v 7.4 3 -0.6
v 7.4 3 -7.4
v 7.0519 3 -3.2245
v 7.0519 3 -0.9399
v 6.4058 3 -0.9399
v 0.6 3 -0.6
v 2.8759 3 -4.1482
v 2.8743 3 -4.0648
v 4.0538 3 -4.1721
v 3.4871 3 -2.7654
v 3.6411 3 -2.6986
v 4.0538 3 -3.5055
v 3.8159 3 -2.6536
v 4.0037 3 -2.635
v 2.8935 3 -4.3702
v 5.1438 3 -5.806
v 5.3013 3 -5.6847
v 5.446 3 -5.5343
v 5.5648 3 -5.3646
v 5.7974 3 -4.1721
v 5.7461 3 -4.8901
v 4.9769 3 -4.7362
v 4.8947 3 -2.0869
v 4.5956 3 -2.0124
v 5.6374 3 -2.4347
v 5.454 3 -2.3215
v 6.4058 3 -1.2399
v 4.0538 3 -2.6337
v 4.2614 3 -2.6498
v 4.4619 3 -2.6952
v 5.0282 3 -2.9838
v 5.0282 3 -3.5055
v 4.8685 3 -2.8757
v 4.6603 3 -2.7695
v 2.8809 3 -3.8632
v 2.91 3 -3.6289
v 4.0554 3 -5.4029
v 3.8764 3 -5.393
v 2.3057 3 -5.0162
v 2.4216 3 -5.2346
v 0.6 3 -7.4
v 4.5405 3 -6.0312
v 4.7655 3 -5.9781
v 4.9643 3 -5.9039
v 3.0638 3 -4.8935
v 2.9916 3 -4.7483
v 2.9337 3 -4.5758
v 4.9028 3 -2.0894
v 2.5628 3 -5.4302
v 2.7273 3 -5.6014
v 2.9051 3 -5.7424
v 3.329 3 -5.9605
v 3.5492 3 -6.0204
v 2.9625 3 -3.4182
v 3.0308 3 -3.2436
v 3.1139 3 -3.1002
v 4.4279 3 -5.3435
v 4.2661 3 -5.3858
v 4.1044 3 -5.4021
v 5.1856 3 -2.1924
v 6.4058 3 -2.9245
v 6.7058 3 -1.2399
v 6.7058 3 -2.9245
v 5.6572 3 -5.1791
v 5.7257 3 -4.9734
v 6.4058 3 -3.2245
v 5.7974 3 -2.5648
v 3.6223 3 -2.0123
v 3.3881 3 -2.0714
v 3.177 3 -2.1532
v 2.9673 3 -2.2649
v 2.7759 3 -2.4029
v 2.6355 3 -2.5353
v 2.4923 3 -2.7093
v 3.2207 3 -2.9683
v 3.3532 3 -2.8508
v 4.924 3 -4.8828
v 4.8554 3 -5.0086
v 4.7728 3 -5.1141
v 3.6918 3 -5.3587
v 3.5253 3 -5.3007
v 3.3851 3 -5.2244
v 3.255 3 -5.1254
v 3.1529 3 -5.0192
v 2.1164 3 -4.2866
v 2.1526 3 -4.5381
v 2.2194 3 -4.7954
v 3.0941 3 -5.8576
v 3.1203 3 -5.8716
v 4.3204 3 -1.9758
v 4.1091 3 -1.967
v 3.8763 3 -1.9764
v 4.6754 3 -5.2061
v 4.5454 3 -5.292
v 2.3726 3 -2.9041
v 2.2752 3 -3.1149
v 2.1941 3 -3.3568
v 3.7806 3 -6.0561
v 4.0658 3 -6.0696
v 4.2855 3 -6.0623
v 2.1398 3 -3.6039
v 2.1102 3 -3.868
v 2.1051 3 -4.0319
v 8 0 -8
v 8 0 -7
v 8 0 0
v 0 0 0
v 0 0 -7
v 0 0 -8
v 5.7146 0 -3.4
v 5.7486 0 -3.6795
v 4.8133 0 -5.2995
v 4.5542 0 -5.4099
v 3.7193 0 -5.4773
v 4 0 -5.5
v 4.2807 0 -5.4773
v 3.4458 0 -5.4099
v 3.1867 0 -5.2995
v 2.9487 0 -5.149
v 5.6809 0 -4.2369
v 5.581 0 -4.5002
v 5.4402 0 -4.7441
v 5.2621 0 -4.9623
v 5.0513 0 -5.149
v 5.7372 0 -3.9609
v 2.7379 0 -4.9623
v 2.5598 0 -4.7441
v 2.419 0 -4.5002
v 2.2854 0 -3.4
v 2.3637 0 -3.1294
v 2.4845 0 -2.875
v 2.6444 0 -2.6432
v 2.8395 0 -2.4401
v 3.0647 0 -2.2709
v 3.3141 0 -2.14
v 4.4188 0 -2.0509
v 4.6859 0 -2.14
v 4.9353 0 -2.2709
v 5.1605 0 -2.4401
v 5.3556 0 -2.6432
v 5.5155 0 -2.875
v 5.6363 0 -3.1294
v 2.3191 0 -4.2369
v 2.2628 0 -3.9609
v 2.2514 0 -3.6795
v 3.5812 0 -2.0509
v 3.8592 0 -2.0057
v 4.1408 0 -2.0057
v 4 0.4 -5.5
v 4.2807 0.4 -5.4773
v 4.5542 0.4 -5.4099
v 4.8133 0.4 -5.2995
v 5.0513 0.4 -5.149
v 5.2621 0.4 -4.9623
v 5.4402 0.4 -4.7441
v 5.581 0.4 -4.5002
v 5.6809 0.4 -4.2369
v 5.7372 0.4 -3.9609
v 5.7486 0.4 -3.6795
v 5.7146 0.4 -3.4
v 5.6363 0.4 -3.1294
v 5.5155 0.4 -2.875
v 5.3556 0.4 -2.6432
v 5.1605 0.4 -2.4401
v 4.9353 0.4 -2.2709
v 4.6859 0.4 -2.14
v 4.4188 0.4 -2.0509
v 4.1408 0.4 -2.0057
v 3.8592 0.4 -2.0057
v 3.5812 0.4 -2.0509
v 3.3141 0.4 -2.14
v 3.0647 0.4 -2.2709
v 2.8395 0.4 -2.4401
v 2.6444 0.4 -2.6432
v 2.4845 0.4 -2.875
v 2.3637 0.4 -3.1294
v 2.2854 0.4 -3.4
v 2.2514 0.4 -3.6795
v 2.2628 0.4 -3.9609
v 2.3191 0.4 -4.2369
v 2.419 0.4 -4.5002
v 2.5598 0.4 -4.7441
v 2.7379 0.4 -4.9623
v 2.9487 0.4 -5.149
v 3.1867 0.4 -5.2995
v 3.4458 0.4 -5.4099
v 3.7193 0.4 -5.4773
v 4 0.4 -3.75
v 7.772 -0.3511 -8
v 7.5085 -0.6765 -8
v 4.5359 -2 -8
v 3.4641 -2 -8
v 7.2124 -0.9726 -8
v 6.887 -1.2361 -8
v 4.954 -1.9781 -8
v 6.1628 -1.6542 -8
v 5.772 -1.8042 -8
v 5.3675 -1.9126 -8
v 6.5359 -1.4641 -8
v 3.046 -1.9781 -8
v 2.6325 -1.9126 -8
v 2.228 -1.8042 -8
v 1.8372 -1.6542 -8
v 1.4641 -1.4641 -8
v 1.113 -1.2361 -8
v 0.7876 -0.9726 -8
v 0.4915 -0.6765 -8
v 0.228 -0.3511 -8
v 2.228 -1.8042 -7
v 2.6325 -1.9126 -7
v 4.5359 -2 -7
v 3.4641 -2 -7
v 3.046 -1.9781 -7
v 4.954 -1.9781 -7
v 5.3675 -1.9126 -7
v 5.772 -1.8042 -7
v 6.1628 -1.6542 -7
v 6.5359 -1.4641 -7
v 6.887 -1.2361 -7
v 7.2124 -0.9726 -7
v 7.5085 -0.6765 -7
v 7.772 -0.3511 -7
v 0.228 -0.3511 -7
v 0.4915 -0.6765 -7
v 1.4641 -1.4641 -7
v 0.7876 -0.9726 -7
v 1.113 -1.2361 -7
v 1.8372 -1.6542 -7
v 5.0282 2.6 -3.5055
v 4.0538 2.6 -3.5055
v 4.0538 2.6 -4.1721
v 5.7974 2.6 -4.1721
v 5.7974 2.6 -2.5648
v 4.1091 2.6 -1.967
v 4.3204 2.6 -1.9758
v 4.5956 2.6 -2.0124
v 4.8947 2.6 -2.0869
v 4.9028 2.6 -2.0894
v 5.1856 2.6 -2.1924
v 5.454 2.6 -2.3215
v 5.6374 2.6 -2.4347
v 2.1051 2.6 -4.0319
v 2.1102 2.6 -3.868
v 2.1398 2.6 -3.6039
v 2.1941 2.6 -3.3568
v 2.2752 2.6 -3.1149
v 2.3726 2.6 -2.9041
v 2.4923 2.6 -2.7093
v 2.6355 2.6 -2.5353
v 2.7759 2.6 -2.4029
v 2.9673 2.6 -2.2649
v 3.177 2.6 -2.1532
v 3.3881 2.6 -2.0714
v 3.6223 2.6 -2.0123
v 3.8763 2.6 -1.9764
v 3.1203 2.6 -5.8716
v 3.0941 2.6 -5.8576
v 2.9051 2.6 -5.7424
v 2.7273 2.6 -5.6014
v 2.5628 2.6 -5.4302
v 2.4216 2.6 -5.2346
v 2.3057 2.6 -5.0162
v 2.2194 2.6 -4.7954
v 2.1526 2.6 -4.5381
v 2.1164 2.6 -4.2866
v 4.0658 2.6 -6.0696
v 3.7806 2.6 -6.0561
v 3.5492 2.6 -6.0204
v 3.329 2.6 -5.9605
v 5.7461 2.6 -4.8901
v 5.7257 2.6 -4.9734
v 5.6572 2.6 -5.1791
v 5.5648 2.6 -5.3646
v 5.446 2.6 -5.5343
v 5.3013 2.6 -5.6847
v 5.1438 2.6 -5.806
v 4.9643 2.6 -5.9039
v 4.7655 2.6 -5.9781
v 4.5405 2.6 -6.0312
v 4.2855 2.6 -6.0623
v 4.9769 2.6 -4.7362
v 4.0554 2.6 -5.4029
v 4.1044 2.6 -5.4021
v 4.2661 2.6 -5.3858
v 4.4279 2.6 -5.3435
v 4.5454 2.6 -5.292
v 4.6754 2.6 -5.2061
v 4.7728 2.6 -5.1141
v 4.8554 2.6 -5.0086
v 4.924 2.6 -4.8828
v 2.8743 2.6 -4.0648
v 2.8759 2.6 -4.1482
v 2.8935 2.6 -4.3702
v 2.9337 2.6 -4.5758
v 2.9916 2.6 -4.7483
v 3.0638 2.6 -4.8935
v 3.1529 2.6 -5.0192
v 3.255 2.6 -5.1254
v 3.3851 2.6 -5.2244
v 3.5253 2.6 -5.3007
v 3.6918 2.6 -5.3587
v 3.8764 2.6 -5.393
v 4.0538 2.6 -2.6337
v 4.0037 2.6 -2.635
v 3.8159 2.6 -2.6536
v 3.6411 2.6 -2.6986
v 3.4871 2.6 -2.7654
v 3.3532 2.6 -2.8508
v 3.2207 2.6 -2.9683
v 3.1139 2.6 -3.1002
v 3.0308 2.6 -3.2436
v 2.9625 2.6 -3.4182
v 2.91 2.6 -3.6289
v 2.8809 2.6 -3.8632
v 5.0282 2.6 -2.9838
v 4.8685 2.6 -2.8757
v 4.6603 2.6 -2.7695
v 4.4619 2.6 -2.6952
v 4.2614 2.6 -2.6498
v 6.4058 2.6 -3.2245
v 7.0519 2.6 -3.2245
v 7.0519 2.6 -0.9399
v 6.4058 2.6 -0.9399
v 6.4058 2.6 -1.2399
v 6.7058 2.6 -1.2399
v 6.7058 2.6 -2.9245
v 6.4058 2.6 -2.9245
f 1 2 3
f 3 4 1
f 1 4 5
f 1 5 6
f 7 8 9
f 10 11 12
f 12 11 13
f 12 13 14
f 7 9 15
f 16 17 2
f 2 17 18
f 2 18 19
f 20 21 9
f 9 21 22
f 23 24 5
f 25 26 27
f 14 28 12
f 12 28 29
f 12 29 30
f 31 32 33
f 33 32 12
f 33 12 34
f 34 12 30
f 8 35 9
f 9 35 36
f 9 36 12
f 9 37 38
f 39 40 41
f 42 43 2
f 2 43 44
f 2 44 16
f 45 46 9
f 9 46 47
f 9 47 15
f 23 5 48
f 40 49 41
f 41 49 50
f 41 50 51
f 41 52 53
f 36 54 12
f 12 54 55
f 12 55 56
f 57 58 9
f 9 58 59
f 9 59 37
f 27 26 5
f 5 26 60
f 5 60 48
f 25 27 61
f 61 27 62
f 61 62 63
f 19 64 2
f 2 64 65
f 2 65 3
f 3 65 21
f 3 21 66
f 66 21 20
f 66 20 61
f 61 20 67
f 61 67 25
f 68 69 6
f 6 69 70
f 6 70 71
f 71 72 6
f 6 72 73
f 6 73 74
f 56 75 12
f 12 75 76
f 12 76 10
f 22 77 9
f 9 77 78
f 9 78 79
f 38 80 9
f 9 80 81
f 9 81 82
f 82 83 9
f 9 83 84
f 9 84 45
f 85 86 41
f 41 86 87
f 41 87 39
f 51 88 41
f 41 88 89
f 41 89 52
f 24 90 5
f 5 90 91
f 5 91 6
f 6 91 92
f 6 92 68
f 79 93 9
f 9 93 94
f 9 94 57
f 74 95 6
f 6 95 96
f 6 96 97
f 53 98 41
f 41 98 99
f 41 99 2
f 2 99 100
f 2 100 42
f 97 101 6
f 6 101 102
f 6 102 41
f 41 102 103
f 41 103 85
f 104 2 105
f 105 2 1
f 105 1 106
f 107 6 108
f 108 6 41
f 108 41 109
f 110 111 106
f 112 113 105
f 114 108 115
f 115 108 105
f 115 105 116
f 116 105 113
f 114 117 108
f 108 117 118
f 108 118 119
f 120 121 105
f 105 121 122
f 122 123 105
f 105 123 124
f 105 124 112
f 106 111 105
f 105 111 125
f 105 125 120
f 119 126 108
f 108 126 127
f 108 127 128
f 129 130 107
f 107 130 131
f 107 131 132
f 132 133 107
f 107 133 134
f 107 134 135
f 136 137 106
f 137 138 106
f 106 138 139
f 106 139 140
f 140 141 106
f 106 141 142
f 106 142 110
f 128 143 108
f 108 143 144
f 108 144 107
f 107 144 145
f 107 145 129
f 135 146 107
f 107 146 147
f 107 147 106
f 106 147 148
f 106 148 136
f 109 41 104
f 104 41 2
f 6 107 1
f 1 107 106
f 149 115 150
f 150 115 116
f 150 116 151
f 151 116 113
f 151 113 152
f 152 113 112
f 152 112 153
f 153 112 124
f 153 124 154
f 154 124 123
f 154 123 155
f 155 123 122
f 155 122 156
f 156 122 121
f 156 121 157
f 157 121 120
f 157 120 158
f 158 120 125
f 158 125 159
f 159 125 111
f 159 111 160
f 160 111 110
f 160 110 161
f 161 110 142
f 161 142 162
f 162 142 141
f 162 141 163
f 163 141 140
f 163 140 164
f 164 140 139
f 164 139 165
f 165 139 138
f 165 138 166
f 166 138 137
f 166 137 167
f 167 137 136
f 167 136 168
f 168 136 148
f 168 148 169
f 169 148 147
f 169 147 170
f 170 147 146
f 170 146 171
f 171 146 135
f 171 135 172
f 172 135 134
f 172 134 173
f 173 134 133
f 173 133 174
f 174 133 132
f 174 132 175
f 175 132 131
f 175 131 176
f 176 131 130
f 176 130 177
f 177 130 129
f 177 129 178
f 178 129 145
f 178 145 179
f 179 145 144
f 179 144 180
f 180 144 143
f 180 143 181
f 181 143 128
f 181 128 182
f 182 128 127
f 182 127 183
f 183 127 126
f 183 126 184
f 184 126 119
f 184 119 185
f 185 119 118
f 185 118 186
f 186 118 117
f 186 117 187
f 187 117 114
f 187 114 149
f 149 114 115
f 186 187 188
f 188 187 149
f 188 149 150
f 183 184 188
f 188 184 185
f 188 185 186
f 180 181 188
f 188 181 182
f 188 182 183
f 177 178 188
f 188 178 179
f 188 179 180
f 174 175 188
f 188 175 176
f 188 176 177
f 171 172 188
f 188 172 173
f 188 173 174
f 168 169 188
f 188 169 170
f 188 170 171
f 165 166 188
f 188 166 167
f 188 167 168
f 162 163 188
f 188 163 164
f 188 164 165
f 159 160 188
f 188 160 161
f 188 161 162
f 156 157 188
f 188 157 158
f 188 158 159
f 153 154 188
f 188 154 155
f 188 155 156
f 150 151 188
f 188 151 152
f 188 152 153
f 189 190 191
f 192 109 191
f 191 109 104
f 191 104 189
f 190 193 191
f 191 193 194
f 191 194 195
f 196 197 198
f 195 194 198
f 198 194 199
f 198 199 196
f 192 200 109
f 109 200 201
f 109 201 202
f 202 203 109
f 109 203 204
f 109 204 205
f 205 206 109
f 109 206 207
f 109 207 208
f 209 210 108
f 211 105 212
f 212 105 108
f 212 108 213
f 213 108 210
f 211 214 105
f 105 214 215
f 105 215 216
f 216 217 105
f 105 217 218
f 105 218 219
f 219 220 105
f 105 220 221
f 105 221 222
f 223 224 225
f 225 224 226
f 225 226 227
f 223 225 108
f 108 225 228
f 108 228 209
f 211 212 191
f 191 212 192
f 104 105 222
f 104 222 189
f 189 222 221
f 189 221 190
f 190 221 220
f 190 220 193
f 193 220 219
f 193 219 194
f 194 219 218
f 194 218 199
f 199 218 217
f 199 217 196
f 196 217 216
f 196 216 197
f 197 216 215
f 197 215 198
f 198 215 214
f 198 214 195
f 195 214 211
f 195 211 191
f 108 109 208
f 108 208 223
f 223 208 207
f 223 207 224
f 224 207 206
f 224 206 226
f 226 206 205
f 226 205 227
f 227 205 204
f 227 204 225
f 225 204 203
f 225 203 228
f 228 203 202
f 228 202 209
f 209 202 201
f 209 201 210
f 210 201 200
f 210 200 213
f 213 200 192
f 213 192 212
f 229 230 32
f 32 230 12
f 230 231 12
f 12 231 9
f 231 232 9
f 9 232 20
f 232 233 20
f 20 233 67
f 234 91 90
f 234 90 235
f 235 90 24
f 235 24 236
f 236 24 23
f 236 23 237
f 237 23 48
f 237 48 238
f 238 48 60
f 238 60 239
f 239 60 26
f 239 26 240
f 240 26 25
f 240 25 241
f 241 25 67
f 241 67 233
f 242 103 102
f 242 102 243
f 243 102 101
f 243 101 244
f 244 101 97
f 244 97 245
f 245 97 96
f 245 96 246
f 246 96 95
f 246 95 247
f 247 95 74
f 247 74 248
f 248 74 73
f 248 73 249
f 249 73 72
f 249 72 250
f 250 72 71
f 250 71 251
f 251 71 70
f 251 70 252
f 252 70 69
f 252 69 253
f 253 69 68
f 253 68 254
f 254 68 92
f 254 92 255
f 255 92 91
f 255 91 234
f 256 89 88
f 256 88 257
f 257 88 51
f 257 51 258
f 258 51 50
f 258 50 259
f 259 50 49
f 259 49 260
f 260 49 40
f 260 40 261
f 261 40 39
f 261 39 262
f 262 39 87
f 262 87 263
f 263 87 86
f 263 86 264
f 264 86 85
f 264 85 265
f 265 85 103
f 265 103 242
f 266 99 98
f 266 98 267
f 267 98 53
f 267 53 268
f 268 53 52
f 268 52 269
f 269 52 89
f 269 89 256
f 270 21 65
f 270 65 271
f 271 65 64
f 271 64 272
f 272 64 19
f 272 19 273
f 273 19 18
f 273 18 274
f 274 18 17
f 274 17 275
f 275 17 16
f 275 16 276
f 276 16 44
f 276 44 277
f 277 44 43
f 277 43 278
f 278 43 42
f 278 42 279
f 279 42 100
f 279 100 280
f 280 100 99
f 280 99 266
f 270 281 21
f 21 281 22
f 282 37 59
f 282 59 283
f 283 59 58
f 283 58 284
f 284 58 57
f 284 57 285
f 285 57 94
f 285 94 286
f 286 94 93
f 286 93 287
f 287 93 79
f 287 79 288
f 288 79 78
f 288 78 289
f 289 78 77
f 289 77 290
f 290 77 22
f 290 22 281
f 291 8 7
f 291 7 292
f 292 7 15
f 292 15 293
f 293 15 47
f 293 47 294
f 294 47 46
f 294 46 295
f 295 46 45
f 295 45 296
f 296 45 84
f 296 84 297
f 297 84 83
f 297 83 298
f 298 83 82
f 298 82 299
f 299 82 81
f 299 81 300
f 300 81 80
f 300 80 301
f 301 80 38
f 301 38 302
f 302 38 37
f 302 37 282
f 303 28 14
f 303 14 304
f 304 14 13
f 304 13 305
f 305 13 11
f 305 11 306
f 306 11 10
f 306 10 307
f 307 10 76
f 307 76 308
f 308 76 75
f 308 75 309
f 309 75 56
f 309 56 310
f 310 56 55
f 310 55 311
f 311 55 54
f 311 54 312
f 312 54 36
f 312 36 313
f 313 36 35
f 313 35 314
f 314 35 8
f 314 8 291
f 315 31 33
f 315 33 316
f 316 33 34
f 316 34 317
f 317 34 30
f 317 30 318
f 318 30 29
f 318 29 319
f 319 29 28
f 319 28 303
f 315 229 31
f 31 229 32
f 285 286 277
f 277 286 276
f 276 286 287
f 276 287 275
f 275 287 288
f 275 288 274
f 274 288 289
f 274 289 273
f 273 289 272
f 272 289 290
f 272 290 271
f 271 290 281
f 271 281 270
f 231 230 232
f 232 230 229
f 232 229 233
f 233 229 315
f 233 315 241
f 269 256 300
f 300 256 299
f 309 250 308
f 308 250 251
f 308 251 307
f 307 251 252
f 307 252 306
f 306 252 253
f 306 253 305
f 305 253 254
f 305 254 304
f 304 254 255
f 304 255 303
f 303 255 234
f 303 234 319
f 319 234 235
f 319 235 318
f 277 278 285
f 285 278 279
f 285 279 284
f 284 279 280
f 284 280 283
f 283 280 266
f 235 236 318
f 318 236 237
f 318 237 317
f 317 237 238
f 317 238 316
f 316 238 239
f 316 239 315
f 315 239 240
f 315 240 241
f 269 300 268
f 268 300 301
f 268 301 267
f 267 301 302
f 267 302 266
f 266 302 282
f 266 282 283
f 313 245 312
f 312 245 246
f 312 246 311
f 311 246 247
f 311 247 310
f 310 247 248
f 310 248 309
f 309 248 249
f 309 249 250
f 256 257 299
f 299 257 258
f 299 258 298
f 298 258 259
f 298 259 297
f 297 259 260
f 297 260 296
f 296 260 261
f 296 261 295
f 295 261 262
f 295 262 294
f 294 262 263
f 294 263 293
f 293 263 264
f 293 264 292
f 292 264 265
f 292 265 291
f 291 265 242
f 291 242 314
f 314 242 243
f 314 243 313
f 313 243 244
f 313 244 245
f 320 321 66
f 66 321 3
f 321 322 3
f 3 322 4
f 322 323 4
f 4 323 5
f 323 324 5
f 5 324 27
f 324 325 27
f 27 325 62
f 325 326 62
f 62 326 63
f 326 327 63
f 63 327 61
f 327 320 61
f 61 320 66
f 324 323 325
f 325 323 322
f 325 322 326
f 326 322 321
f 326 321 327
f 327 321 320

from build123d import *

# Parameters (mm, degrees)
SKETCH1_W               = 8
SKETCH1_H               = 8
BOSS_EXTRUDE1_DEPTH     = 3
CUT_EXTRUDE1_DEPTH      = 12.704699911
CUT_EXTRUDE1_DEPTH_BACK = 12.704699911
CUT_EXTRUDE2_DEPTH      = 11
SKETCH4_R               = 1.75
CUT_EXTRUDE3_DEPTH      = 0.4
SKETCH5_W               = 8
SKETCH5_H               = 1
BOSS_EXTRUDE2_DEPTH     = 2
FILLET1_R               = 4
CUT_EXTRUDE4_DEPTH      = 0.4
CUT_EXTRUDE5_DEPTH      = 0.4


with BuildPart() as part:
    # Sketch1 → Boss-Extrude1 (new body)
    with BuildSketch(Plane(origin=(0, 0, 0), x_dir=(1, 0, 0), z_dir=(0, 1, 0))):
        with Locations((4, 4)):
            Rectangle(SKETCH1_W, SKETCH1_H)
    extrude(amount=BOSS_EXTRUDE1_DEPTH)

    # Sketch2 → Cut-Extrude1 (cut, two sides: drawn at the far end of the back side and taken through both)
    with BuildSketch(Plane.XY.offset(-CUT_EXTRUDE1_DEPTH_BACK)):
        Polygon((0, 0), (0.6, 3), (0, 3), align=None)
        Polygon((8, 0), (7.4, 3), (8, 3), align=None)
    extrude(amount=CUT_EXTRUDE1_DEPTH + CUT_EXTRUDE1_DEPTH_BACK, mode=Mode.SUBTRACT)

    # Sketch3 → Cut-Extrude2 (cut)
    with BuildSketch(Plane(origin=(0, 0, 0), x_dir=(0, 0, -1), z_dir=(1, 0, 0))):
        Polygon((0, 0), (0.6, 3), (0, 3), align=None)
        Polygon((8, 3), (7.4, 3), (8, 0), align=None)
    extrude(amount=CUT_EXTRUDE2_DEPTH, mode=Mode.SUBTRACT)

    # Sketch4 → Cut-Extrude3 (cut)
    with BuildSketch(Plane.XZ):
        with Locations(Location((4, -3.75, 0), (0, 0, 270))):
            Circle(SKETCH4_R)
    extrude(amount=-CUT_EXTRUDE3_DEPTH, mode=Mode.SUBTRACT)

    # Sketch5 → Boss-Extrude2 (add)
    with BuildSketch(Plane.XZ):
        with Locations((4, -7.5)):
            Rectangle(SKETCH5_W, SKETCH5_H)
    extrude(amount=BOSS_EXTRUDE2_DEPTH)

    # Fillet1
    # the kernel refuses this fillet: 4 mm, written as the material it takes off along each edge
    with BuildSketch(Plane(origin=(8, -2, -16.660254038), x_dir=(0, 1, 0), z_dir=(0, 0, 1)), Plane(origin=(0, -2, 1.660254038), x_dir=(0, 1, 0), z_dir=(0, 0, -1))) as fillet1_piece_1:
        with BuildLine():
            CenterArc((4, 3.464101615), FILLET1_R, 180, 60)
            Line((0, 3.464101615), (-0.08, 3.464101615))
            Line((-0.08, 3.464101615), (-0.08, 0))
            Line((-0.08, 0), (0, -0.08))
            ThreePointArc((0, -0.08), (1, -0.08), (1.96, -0.069282032))
            Line((1.96, -0.069282032), (2, 0))
        make_face()
    extrude(amount=18.320508076, mode=Mode.SUBTRACT)

    # Sketch6 → Cut-Extrude4 (cut)
    with BuildSketch(Plane(origin=(0, 3, 0), x_dir=(1, 0, 0), z_dir=(0, 1, 0))):
        with BuildLine():
            Line((4.053794593, 3.505457585), (4.053794593, 4.172124252))
            Line((4.053794593, 4.172124252), (5.797384337, 4.172124252))
            Line((5.797384337, 4.172124252), (5.797384337, 2.564752457))
            add(Edge.make_bspline(
                [(5.797384337, 2.564752457), (5.775440275, 2.544992361), (5.730582172, 2.504598726), (5.657391115, 2.447633596), (5.576814656, 2.393249062), (5.489339896, 2.340343698), (5.394785806, 2.289343315), (5.293529517, 2.239537607), (5.185384208, 2.19141366), (5.032450931, 2.131128575), (4.835594452, 2.065533422), (4.594933471, 2.008496304), (4.352368706, 1.973513189), (4.190125473, 1.969167013), (4.109083055, 1.966996047)],
                knots=[0, 0, 0, 0, 0.581799769, 1.189316438, 1.825828404, 2.496525428, 3.203088405, 3.942228803, 4.719818701, 5.534979611, 7.181138583, 8.803804008, 10.403462225, 12, 12, 12, 12], degree=3))
            add(Edge.make_bspline(
                [(4.109083055, 1.966996047), (4.058312627, 1.967758979), (3.958229013, 1.969262944), (3.810482794, 1.981368296), (3.667847904, 2.002080495), (3.530208107, 2.031409962), (3.397097502, 2.066765974), (3.26907094, 2.111868039), (3.146582956, 2.166009466), (3.028523806, 2.226338905), (2.917094396, 2.295632176), (2.812187083, 2.371432832), (2.714561168, 2.454400196), (2.624566637, 2.544701507), (2.540998329, 2.641714843), (2.464831298, 2.745902822), (2.396526155, 2.857385727), (2.335239765, 2.974765127), (2.280716867, 3.097008702), (2.234709094, 3.223154334), (2.194374003, 3.351370526), (2.161222966, 3.482107416), (2.136875151, 3.615790052), (2.117947657, 3.751799892), (2.107781758, 3.890986734), (2.105984472, 3.984609884), (2.105076645, 4.031899893)],
                knots=[0, 0, 0, 0, 1.124918047, 2.217548049, 3.282233239, 4.316494221, 5.334437038, 6.332151046, 7.320712088, 8.300141923, 9.267552434, 10.225301062, 11.165776911, 12.103230934, 13.047553934, 14.000517593, 14.959782875, 15.941944936, 16.932894943, 17.923491392, 18.915624898, 19.910402922, 20.909870877, 21.92519501, 22.95199481, 24, 24, 24, 24], degree=3))
            add(Edge.make_bspline(
                [(2.105076645, 4.031899893), (2.105812881, 4.082940857), (2.107264322, 4.183564655), (2.119773705, 4.33228546), (2.139199297, 4.476648194), (2.168656936, 4.616390773), (2.20449512, 4.75216369), (2.248233589, 4.883877531), (2.301822866, 5.010556427), (2.361436063, 5.133283761), (2.429297714, 5.250362339), (2.505977563, 5.360290437), (2.589206445, 5.464176802), (2.680629029, 5.560371285), (2.779923369, 5.648827012), (2.886080088, 5.730522243), (2.998844963, 5.806865303), (3.079553832, 5.849911113), (3.120301004, 5.871643482)],
                knots=[0, 0, 0, 0, 1.105010302, 2.178452875, 3.229459892, 4.257086284, 5.268538906, 6.268935615, 7.259234261, 8.24469117, 9.221745683, 10.185929258, 11.144249683, 12.101504986, 13.055838221, 14.020611351, 15.000673771, 16, 16, 16, 16], degree=3))
            add(Edge.make_bspline(
                [(3.120301004, 5.871643482), (3.152638085, 5.887700047), (3.218317351, 5.920312247), (3.322813337, 5.959248923), (3.432101667, 5.994677516), (3.547832356, 6.021111591), (3.6692195, 6.042829226), (3.796209305, 6.059036287), (3.929210312, 6.067547239), (4.019595582, 6.068879104), (4.065813824, 6.069560149)],
                knots=[0, 0, 0, 0, 0.887969848, 1.803539625, 2.741143579, 3.713741423, 4.722068772, 5.775476617, 6.8624965, 8, 8, 8, 8], degree=3))
            add(Edge.make_bspline(
                [(4.065813824, 6.069560149), (4.125403824, 6.06867255), (4.241295356, 6.066946335), (4.410256532, 6.05256252), (4.569271079, 6.027772487), (4.718560435, 5.993629866), (4.857802985, 5.949731518), (4.986759025, 5.895763799), (5.106220057, 5.832812796), (5.214455834, 5.758355608), (5.313666102, 5.676257846), (5.403591975, 5.586419647), (5.48426965, 5.488707943), (5.555752499, 5.383614392), (5.617477906, 5.2707046), (5.670549966, 5.151008328), (5.714234697, 5.023616882), (5.73534656, 4.935145779), (5.746102286, 4.89007297)],
                knots=[0, 0, 0, 0, 1.271135529, 2.472123572, 3.614091059, 4.701890498, 5.736279567, 6.724681829, 7.680621489, 8.611506429, 9.52200816, 10.424540711, 11.318996785, 12.221421405, 13.131851814, 14.060431888, 15.011860567, 16, 16, 16, 16], degree=3))
            Line((5.746102286, 4.89007297), (4.976871517, 4.736226816))
            add(Edge.make_bspline(
                [(4.976871517, 4.736226816), (4.969254672, 4.761468809), (4.95422678, 4.81127079), (4.925094227, 4.882758251), (4.891539922, 4.949961192), (4.853483379, 5.013366036), (4.810541206, 5.072582433), (4.761675926, 5.126971617), (4.709961453, 5.179014495), (4.652020351, 5.225088646), (4.590259767, 5.266624284), (4.52537561, 5.304078684), (4.455901775, 5.334453158), (4.382811411, 5.358892727), (4.306461756, 5.37964837), (4.225856415, 5.392413169), (4.141900573, 5.402040295), (4.084540473, 5.402606041), (4.055397158, 5.402893482)],
                knots=[0, 0, 0, 0, 1.027736275, 2.027704492, 3.005900071, 3.954421694, 4.908588141, 5.853155543, 6.803277083, 7.766271258, 8.734041521, 9.704274878, 10.683578894, 11.68490234, 12.708089448, 13.76461009, 14.864251086, 16, 16, 16, 16], degree=3))
            add(Edge.make_bspline(
                [(4.055397158, 5.402893482), (4.01128773, 5.401716629), (3.925204424, 5.399419898), (3.799534269, 5.384433236), (3.680976007, 5.357770589), (3.569219615, 5.320994553), (3.46406021, 5.273789934), (3.366918824, 5.2143961), (3.275376693, 5.146327474), (3.192038786, 5.066438045), (3.116460773, 4.976859168), (3.051034483, 4.876522357), (2.996567377, 4.765751945), (2.951955713, 4.645104141), (2.91643531, 4.514573915), (2.892338718, 4.373699188), (2.876594443, 4.222696077), (2.875085403, 4.118480819), (2.874307414, 4.064752457)],
                knots=[0, 0, 0, 0, 1.043810997, 2.037086103, 2.989314757, 3.91471467, 4.817033861, 5.710208705, 6.603920097, 7.511448416, 8.435617211, 9.371747005, 10.338444094, 11.350425613, 12.411431869, 13.5347293, 14.729025275, 16, 16, 16, 16], degree=3))
            add(Edge.make_bspline(
                [(2.874307414, 4.064752457), (2.875118698, 4.00702506), (2.876695474, 3.894828493), (2.892027057, 3.732262921), (2.917247643, 3.580803592), (2.95342224, 3.44064155), (2.998941149, 3.311279521), (3.053656914, 3.192304252), (3.121182779, 3.085923464), (3.197244894, 2.990004781), (3.28225913, 2.906191636), (3.37384152, 2.833121051), (3.471482188, 2.77119638), (3.576081527, 2.721395085), (3.686320303, 2.681751972), (3.80321198, 2.653959398), (3.926408504, 2.636695674), (4.010734238, 2.634687946), (4.053794593, 2.633662713)],
                knots=[0, 0, 0, 0, 1.318042826, 2.561693173, 3.724929596, 4.821196409, 5.862977565, 6.853497791, 7.804600806, 8.73339865, 9.643480846, 10.524649628, 11.404635349, 12.277659519, 13.165160235, 14.075017549, 15.017020959, 16, 16, 16, 16], degree=3))
            add(Edge.make_bspline(
                [(4.053794593, 2.633662713), (4.097408334, 2.634875039), (4.185053042, 2.637311287), (4.316328539, 2.657956024), (4.448117665, 2.68833542), (4.577327471, 2.734163302), (4.70281192, 2.786727561), (4.819965055, 2.847306941), (4.929675356, 2.910453005), (4.995733738, 2.959668979), (5.028153568, 2.98382297)],
                knots=[0, 0, 0, 0, 0.993821502, 1.997150276, 3.023717651, 4.073291794, 5.118404464, 6.123376694, 7.078999408, 8, 8, 8, 8], degree=3))
            Line((5.028153568, 2.98382297), (5.028153568, 3.505457585))
            Line((5.028153568, 3.505457585), (4.053794593, 3.505457585))
        make_face()
    extrude(amount=-CUT_EXTRUDE4_DEPTH, mode=Mode.SUBTRACT)

    # Sketch7 → Cut-Extrude5 (cut)
    with BuildSketch(Plane(origin=(0, 3, 0), x_dir=(1, 0, 0), z_dir=(0, 1, 0))):
        Polygon((7.051946272, 3.224540865), (7.051946272, 0.93992548), (6.405792426, 0.93992548), (6.405792426, 1.23992548), (6.705792426, 1.23992548), (6.705792426, 2.924540865), (6.405792426, 2.924540865), (6.405792426, 3.224540865), align=None)
    extrude(amount=-CUT_EXTRUDE5_DEPTH, mode=Mode.SUBTRACT)


solid = part.part
